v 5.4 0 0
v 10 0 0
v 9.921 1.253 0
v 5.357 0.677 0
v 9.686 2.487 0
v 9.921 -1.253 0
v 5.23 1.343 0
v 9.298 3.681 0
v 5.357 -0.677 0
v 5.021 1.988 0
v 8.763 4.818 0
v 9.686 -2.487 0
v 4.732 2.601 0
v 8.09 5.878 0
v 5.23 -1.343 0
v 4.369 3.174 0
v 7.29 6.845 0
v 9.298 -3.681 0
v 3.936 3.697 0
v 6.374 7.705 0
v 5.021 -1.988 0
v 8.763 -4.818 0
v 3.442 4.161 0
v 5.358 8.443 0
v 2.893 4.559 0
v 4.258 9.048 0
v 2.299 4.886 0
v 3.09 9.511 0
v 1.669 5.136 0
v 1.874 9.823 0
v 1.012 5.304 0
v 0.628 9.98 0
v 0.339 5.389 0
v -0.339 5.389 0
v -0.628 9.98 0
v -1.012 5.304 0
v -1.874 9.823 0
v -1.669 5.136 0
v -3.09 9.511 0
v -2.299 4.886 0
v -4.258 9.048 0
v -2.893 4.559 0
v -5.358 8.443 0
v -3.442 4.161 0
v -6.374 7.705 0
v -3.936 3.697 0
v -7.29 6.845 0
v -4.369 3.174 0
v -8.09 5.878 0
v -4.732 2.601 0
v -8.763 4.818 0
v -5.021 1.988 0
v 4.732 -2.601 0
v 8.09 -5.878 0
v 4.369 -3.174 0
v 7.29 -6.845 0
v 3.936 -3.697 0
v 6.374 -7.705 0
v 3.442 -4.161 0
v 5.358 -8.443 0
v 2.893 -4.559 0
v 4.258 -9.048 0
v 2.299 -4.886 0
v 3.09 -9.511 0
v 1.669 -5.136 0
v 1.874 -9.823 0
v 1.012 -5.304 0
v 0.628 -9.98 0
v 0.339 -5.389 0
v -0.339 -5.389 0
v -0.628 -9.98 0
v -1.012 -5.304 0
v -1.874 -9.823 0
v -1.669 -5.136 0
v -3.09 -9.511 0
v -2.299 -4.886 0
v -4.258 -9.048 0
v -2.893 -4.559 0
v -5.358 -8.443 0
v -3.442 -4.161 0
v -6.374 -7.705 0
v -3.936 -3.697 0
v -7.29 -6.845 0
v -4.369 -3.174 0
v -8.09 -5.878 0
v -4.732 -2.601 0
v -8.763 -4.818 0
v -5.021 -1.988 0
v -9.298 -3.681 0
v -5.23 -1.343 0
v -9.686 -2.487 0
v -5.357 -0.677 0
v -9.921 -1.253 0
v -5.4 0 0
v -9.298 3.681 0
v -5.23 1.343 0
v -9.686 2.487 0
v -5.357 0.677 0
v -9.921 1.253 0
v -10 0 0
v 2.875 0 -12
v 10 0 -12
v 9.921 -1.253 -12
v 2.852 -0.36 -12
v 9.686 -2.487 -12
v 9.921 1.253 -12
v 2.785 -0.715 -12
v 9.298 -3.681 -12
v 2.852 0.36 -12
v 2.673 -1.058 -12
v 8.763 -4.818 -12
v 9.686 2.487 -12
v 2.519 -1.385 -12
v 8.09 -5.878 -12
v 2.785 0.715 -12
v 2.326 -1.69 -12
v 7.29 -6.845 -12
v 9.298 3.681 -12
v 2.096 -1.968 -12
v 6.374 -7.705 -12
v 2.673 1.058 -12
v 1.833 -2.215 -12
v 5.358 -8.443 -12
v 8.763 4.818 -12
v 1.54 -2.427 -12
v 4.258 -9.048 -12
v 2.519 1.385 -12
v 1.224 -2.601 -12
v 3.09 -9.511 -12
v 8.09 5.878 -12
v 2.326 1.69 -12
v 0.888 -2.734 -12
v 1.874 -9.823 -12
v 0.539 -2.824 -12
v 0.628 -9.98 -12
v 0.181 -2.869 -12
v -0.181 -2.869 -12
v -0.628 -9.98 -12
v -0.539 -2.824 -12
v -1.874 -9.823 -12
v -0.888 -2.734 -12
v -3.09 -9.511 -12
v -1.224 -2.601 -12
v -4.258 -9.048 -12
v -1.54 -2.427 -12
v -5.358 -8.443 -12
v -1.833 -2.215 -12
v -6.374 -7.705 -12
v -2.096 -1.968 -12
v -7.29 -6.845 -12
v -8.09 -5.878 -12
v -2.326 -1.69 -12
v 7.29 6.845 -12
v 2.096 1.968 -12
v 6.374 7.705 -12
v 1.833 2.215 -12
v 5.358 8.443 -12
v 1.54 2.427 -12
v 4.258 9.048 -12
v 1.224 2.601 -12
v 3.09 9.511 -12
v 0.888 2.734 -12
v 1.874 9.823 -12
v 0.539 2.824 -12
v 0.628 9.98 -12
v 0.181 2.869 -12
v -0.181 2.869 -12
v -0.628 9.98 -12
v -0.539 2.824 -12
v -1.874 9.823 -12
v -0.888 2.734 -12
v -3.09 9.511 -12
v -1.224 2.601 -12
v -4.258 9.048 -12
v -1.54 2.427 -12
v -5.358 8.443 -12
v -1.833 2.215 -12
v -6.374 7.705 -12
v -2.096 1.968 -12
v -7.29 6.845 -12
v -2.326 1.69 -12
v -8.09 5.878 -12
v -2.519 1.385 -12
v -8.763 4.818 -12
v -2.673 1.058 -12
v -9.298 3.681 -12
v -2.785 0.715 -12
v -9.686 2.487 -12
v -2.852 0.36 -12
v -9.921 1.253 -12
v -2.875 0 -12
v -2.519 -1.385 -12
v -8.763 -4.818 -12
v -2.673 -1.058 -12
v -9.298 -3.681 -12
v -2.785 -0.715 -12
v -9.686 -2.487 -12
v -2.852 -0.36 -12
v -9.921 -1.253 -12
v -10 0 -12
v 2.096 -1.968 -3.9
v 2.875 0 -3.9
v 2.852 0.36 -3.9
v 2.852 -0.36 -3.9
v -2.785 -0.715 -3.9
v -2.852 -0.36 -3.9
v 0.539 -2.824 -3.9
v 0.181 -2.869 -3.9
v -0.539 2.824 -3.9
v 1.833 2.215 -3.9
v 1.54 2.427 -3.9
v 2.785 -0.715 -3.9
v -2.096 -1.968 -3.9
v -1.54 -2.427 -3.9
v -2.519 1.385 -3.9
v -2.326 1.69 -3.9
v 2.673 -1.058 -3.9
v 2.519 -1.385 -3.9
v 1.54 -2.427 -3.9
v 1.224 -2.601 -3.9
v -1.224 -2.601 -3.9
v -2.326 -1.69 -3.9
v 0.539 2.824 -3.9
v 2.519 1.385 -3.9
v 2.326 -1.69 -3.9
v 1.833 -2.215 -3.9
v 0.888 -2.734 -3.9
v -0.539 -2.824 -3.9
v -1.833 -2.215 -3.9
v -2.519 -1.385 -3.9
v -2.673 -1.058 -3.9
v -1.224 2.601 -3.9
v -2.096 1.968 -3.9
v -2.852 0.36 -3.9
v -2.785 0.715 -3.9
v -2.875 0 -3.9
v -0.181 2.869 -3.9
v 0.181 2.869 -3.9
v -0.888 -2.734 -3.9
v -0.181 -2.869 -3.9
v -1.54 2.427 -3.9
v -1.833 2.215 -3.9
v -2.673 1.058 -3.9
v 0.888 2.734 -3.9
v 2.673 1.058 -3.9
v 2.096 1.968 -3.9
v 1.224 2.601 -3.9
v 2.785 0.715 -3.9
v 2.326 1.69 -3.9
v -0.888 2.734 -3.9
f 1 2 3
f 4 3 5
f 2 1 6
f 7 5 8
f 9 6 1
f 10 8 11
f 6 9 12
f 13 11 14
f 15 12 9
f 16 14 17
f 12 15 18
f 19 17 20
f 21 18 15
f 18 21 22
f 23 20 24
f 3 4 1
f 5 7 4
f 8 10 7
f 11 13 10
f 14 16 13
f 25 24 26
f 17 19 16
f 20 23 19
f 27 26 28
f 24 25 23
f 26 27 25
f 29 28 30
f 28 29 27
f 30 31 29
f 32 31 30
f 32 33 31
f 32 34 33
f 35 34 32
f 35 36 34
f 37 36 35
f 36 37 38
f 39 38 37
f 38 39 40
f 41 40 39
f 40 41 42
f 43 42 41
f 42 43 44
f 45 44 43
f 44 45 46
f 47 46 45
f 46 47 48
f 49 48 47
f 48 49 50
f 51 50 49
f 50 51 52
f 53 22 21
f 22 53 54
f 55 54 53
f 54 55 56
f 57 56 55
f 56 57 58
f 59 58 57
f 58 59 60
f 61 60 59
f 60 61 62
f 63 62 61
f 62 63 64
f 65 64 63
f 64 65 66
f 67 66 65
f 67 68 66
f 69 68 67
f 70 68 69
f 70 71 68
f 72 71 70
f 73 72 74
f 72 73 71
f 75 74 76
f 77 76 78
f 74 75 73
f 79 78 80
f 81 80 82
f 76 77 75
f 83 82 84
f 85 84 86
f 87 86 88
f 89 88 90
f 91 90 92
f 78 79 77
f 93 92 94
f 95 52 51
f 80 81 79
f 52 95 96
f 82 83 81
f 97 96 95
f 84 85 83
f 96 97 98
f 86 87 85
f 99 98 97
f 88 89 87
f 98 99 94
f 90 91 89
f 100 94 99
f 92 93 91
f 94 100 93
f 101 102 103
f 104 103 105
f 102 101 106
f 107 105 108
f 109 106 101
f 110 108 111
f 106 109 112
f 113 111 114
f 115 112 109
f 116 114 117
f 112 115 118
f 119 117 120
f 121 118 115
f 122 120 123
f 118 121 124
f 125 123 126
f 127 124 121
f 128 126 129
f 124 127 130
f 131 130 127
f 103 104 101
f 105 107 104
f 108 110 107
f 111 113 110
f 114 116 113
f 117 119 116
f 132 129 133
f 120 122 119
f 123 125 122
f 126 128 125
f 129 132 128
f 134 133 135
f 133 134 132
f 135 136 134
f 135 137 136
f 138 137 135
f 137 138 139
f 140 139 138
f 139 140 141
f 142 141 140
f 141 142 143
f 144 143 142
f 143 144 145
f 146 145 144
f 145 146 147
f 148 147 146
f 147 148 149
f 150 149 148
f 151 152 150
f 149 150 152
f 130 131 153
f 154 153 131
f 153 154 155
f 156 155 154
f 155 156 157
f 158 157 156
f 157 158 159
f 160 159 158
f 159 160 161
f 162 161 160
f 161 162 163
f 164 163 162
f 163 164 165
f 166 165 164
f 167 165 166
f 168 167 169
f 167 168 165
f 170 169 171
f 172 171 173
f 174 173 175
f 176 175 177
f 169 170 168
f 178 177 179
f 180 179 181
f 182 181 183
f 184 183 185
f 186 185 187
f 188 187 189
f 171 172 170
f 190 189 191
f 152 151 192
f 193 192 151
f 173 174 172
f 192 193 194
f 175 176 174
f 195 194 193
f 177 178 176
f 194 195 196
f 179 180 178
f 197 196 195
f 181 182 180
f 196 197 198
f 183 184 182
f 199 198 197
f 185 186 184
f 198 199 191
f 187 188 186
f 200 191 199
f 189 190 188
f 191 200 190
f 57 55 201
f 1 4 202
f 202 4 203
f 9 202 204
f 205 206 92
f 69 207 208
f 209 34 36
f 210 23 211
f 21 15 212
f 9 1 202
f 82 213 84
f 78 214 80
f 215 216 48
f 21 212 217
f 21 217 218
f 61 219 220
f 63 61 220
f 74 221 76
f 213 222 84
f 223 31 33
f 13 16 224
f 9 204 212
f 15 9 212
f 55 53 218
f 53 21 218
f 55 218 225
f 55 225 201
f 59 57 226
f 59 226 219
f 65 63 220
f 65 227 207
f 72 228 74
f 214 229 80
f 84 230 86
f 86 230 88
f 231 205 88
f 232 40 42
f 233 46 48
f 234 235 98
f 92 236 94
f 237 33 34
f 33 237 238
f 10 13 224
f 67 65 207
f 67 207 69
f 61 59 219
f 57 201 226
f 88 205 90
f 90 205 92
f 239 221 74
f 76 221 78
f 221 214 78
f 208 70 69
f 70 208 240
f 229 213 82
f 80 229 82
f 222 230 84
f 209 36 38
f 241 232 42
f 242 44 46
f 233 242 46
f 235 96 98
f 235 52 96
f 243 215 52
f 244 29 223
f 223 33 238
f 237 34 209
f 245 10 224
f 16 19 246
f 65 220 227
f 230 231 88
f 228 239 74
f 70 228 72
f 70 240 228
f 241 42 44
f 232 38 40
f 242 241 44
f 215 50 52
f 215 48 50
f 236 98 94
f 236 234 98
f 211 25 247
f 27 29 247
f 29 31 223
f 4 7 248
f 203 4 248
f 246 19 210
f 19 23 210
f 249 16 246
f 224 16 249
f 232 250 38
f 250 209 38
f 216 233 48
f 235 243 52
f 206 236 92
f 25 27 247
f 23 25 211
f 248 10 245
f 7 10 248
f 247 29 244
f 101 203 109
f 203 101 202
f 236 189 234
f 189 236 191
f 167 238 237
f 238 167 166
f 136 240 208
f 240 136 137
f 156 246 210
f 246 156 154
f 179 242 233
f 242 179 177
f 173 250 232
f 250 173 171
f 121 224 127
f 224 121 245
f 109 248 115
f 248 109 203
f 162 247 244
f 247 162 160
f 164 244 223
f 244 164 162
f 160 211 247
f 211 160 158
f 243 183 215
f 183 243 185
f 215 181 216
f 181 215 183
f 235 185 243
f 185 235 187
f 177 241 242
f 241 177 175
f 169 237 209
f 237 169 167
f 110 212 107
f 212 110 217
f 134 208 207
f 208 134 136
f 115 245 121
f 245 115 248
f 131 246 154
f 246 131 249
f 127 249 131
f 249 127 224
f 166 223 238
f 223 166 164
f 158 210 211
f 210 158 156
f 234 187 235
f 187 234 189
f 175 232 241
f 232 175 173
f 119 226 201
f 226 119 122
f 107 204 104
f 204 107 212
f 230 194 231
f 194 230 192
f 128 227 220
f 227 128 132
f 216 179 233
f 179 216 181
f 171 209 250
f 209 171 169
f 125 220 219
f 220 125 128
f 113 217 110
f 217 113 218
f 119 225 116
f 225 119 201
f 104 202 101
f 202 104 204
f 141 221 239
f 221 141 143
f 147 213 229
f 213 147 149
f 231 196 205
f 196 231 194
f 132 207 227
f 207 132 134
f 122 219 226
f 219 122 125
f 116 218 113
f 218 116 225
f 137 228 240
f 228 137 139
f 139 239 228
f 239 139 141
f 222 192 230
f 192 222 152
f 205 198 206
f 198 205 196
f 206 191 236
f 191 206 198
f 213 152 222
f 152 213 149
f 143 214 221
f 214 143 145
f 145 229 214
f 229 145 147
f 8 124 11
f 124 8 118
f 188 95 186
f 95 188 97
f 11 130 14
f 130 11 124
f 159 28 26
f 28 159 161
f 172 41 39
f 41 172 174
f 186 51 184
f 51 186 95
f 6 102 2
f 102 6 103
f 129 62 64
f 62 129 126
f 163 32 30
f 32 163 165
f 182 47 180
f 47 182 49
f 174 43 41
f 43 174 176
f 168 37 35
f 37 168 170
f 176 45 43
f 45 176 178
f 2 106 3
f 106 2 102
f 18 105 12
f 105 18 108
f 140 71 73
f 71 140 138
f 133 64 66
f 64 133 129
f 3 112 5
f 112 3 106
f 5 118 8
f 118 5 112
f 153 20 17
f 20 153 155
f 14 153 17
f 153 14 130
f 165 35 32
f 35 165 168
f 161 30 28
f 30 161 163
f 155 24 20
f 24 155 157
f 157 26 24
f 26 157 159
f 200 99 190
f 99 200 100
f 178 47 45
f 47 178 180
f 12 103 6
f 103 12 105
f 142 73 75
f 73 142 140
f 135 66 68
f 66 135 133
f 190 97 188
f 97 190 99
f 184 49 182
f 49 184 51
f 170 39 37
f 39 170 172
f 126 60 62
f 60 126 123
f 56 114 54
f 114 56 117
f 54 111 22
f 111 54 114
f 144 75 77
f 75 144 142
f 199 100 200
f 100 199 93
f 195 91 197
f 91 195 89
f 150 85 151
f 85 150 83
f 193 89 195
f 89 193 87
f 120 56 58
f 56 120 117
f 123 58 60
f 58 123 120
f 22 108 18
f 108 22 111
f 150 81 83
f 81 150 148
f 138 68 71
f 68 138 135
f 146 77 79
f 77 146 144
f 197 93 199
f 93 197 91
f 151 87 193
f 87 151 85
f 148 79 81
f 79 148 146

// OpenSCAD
$fn = 50;


difference() {
	union() {
		translate(v = [0, 0, -12.0000000000]) {
			cylinder(h = 12, r = 10.0000000000);
		}
	}
	union() {
		translate(v = [0, 0, 0]) {
			rotate(a = [0, 0, 0]) {
				difference() {
					union() {
						#translate(v = [0, 0, -12.0000000000]) {
							cylinder(h = 12, r = 2.6000000000);
						}
						#translate(v = [0, 0, -3.9000000000]) {
							cylinder(h = 3.9000000000, r1 = 2.8750000000, r2 = 5.4000000000);
						}
						#translate(v = [0, 0, -12.0000000000]) {
							cylinder(h = 12, r = 2.8750000000);
						}
						#translate(v = [0, 0, -12.0000000000]) {
							cylinder(h = 12, r = 2.6000000000);
						}
					}
					union();
				}
			}
		}
	}
}
